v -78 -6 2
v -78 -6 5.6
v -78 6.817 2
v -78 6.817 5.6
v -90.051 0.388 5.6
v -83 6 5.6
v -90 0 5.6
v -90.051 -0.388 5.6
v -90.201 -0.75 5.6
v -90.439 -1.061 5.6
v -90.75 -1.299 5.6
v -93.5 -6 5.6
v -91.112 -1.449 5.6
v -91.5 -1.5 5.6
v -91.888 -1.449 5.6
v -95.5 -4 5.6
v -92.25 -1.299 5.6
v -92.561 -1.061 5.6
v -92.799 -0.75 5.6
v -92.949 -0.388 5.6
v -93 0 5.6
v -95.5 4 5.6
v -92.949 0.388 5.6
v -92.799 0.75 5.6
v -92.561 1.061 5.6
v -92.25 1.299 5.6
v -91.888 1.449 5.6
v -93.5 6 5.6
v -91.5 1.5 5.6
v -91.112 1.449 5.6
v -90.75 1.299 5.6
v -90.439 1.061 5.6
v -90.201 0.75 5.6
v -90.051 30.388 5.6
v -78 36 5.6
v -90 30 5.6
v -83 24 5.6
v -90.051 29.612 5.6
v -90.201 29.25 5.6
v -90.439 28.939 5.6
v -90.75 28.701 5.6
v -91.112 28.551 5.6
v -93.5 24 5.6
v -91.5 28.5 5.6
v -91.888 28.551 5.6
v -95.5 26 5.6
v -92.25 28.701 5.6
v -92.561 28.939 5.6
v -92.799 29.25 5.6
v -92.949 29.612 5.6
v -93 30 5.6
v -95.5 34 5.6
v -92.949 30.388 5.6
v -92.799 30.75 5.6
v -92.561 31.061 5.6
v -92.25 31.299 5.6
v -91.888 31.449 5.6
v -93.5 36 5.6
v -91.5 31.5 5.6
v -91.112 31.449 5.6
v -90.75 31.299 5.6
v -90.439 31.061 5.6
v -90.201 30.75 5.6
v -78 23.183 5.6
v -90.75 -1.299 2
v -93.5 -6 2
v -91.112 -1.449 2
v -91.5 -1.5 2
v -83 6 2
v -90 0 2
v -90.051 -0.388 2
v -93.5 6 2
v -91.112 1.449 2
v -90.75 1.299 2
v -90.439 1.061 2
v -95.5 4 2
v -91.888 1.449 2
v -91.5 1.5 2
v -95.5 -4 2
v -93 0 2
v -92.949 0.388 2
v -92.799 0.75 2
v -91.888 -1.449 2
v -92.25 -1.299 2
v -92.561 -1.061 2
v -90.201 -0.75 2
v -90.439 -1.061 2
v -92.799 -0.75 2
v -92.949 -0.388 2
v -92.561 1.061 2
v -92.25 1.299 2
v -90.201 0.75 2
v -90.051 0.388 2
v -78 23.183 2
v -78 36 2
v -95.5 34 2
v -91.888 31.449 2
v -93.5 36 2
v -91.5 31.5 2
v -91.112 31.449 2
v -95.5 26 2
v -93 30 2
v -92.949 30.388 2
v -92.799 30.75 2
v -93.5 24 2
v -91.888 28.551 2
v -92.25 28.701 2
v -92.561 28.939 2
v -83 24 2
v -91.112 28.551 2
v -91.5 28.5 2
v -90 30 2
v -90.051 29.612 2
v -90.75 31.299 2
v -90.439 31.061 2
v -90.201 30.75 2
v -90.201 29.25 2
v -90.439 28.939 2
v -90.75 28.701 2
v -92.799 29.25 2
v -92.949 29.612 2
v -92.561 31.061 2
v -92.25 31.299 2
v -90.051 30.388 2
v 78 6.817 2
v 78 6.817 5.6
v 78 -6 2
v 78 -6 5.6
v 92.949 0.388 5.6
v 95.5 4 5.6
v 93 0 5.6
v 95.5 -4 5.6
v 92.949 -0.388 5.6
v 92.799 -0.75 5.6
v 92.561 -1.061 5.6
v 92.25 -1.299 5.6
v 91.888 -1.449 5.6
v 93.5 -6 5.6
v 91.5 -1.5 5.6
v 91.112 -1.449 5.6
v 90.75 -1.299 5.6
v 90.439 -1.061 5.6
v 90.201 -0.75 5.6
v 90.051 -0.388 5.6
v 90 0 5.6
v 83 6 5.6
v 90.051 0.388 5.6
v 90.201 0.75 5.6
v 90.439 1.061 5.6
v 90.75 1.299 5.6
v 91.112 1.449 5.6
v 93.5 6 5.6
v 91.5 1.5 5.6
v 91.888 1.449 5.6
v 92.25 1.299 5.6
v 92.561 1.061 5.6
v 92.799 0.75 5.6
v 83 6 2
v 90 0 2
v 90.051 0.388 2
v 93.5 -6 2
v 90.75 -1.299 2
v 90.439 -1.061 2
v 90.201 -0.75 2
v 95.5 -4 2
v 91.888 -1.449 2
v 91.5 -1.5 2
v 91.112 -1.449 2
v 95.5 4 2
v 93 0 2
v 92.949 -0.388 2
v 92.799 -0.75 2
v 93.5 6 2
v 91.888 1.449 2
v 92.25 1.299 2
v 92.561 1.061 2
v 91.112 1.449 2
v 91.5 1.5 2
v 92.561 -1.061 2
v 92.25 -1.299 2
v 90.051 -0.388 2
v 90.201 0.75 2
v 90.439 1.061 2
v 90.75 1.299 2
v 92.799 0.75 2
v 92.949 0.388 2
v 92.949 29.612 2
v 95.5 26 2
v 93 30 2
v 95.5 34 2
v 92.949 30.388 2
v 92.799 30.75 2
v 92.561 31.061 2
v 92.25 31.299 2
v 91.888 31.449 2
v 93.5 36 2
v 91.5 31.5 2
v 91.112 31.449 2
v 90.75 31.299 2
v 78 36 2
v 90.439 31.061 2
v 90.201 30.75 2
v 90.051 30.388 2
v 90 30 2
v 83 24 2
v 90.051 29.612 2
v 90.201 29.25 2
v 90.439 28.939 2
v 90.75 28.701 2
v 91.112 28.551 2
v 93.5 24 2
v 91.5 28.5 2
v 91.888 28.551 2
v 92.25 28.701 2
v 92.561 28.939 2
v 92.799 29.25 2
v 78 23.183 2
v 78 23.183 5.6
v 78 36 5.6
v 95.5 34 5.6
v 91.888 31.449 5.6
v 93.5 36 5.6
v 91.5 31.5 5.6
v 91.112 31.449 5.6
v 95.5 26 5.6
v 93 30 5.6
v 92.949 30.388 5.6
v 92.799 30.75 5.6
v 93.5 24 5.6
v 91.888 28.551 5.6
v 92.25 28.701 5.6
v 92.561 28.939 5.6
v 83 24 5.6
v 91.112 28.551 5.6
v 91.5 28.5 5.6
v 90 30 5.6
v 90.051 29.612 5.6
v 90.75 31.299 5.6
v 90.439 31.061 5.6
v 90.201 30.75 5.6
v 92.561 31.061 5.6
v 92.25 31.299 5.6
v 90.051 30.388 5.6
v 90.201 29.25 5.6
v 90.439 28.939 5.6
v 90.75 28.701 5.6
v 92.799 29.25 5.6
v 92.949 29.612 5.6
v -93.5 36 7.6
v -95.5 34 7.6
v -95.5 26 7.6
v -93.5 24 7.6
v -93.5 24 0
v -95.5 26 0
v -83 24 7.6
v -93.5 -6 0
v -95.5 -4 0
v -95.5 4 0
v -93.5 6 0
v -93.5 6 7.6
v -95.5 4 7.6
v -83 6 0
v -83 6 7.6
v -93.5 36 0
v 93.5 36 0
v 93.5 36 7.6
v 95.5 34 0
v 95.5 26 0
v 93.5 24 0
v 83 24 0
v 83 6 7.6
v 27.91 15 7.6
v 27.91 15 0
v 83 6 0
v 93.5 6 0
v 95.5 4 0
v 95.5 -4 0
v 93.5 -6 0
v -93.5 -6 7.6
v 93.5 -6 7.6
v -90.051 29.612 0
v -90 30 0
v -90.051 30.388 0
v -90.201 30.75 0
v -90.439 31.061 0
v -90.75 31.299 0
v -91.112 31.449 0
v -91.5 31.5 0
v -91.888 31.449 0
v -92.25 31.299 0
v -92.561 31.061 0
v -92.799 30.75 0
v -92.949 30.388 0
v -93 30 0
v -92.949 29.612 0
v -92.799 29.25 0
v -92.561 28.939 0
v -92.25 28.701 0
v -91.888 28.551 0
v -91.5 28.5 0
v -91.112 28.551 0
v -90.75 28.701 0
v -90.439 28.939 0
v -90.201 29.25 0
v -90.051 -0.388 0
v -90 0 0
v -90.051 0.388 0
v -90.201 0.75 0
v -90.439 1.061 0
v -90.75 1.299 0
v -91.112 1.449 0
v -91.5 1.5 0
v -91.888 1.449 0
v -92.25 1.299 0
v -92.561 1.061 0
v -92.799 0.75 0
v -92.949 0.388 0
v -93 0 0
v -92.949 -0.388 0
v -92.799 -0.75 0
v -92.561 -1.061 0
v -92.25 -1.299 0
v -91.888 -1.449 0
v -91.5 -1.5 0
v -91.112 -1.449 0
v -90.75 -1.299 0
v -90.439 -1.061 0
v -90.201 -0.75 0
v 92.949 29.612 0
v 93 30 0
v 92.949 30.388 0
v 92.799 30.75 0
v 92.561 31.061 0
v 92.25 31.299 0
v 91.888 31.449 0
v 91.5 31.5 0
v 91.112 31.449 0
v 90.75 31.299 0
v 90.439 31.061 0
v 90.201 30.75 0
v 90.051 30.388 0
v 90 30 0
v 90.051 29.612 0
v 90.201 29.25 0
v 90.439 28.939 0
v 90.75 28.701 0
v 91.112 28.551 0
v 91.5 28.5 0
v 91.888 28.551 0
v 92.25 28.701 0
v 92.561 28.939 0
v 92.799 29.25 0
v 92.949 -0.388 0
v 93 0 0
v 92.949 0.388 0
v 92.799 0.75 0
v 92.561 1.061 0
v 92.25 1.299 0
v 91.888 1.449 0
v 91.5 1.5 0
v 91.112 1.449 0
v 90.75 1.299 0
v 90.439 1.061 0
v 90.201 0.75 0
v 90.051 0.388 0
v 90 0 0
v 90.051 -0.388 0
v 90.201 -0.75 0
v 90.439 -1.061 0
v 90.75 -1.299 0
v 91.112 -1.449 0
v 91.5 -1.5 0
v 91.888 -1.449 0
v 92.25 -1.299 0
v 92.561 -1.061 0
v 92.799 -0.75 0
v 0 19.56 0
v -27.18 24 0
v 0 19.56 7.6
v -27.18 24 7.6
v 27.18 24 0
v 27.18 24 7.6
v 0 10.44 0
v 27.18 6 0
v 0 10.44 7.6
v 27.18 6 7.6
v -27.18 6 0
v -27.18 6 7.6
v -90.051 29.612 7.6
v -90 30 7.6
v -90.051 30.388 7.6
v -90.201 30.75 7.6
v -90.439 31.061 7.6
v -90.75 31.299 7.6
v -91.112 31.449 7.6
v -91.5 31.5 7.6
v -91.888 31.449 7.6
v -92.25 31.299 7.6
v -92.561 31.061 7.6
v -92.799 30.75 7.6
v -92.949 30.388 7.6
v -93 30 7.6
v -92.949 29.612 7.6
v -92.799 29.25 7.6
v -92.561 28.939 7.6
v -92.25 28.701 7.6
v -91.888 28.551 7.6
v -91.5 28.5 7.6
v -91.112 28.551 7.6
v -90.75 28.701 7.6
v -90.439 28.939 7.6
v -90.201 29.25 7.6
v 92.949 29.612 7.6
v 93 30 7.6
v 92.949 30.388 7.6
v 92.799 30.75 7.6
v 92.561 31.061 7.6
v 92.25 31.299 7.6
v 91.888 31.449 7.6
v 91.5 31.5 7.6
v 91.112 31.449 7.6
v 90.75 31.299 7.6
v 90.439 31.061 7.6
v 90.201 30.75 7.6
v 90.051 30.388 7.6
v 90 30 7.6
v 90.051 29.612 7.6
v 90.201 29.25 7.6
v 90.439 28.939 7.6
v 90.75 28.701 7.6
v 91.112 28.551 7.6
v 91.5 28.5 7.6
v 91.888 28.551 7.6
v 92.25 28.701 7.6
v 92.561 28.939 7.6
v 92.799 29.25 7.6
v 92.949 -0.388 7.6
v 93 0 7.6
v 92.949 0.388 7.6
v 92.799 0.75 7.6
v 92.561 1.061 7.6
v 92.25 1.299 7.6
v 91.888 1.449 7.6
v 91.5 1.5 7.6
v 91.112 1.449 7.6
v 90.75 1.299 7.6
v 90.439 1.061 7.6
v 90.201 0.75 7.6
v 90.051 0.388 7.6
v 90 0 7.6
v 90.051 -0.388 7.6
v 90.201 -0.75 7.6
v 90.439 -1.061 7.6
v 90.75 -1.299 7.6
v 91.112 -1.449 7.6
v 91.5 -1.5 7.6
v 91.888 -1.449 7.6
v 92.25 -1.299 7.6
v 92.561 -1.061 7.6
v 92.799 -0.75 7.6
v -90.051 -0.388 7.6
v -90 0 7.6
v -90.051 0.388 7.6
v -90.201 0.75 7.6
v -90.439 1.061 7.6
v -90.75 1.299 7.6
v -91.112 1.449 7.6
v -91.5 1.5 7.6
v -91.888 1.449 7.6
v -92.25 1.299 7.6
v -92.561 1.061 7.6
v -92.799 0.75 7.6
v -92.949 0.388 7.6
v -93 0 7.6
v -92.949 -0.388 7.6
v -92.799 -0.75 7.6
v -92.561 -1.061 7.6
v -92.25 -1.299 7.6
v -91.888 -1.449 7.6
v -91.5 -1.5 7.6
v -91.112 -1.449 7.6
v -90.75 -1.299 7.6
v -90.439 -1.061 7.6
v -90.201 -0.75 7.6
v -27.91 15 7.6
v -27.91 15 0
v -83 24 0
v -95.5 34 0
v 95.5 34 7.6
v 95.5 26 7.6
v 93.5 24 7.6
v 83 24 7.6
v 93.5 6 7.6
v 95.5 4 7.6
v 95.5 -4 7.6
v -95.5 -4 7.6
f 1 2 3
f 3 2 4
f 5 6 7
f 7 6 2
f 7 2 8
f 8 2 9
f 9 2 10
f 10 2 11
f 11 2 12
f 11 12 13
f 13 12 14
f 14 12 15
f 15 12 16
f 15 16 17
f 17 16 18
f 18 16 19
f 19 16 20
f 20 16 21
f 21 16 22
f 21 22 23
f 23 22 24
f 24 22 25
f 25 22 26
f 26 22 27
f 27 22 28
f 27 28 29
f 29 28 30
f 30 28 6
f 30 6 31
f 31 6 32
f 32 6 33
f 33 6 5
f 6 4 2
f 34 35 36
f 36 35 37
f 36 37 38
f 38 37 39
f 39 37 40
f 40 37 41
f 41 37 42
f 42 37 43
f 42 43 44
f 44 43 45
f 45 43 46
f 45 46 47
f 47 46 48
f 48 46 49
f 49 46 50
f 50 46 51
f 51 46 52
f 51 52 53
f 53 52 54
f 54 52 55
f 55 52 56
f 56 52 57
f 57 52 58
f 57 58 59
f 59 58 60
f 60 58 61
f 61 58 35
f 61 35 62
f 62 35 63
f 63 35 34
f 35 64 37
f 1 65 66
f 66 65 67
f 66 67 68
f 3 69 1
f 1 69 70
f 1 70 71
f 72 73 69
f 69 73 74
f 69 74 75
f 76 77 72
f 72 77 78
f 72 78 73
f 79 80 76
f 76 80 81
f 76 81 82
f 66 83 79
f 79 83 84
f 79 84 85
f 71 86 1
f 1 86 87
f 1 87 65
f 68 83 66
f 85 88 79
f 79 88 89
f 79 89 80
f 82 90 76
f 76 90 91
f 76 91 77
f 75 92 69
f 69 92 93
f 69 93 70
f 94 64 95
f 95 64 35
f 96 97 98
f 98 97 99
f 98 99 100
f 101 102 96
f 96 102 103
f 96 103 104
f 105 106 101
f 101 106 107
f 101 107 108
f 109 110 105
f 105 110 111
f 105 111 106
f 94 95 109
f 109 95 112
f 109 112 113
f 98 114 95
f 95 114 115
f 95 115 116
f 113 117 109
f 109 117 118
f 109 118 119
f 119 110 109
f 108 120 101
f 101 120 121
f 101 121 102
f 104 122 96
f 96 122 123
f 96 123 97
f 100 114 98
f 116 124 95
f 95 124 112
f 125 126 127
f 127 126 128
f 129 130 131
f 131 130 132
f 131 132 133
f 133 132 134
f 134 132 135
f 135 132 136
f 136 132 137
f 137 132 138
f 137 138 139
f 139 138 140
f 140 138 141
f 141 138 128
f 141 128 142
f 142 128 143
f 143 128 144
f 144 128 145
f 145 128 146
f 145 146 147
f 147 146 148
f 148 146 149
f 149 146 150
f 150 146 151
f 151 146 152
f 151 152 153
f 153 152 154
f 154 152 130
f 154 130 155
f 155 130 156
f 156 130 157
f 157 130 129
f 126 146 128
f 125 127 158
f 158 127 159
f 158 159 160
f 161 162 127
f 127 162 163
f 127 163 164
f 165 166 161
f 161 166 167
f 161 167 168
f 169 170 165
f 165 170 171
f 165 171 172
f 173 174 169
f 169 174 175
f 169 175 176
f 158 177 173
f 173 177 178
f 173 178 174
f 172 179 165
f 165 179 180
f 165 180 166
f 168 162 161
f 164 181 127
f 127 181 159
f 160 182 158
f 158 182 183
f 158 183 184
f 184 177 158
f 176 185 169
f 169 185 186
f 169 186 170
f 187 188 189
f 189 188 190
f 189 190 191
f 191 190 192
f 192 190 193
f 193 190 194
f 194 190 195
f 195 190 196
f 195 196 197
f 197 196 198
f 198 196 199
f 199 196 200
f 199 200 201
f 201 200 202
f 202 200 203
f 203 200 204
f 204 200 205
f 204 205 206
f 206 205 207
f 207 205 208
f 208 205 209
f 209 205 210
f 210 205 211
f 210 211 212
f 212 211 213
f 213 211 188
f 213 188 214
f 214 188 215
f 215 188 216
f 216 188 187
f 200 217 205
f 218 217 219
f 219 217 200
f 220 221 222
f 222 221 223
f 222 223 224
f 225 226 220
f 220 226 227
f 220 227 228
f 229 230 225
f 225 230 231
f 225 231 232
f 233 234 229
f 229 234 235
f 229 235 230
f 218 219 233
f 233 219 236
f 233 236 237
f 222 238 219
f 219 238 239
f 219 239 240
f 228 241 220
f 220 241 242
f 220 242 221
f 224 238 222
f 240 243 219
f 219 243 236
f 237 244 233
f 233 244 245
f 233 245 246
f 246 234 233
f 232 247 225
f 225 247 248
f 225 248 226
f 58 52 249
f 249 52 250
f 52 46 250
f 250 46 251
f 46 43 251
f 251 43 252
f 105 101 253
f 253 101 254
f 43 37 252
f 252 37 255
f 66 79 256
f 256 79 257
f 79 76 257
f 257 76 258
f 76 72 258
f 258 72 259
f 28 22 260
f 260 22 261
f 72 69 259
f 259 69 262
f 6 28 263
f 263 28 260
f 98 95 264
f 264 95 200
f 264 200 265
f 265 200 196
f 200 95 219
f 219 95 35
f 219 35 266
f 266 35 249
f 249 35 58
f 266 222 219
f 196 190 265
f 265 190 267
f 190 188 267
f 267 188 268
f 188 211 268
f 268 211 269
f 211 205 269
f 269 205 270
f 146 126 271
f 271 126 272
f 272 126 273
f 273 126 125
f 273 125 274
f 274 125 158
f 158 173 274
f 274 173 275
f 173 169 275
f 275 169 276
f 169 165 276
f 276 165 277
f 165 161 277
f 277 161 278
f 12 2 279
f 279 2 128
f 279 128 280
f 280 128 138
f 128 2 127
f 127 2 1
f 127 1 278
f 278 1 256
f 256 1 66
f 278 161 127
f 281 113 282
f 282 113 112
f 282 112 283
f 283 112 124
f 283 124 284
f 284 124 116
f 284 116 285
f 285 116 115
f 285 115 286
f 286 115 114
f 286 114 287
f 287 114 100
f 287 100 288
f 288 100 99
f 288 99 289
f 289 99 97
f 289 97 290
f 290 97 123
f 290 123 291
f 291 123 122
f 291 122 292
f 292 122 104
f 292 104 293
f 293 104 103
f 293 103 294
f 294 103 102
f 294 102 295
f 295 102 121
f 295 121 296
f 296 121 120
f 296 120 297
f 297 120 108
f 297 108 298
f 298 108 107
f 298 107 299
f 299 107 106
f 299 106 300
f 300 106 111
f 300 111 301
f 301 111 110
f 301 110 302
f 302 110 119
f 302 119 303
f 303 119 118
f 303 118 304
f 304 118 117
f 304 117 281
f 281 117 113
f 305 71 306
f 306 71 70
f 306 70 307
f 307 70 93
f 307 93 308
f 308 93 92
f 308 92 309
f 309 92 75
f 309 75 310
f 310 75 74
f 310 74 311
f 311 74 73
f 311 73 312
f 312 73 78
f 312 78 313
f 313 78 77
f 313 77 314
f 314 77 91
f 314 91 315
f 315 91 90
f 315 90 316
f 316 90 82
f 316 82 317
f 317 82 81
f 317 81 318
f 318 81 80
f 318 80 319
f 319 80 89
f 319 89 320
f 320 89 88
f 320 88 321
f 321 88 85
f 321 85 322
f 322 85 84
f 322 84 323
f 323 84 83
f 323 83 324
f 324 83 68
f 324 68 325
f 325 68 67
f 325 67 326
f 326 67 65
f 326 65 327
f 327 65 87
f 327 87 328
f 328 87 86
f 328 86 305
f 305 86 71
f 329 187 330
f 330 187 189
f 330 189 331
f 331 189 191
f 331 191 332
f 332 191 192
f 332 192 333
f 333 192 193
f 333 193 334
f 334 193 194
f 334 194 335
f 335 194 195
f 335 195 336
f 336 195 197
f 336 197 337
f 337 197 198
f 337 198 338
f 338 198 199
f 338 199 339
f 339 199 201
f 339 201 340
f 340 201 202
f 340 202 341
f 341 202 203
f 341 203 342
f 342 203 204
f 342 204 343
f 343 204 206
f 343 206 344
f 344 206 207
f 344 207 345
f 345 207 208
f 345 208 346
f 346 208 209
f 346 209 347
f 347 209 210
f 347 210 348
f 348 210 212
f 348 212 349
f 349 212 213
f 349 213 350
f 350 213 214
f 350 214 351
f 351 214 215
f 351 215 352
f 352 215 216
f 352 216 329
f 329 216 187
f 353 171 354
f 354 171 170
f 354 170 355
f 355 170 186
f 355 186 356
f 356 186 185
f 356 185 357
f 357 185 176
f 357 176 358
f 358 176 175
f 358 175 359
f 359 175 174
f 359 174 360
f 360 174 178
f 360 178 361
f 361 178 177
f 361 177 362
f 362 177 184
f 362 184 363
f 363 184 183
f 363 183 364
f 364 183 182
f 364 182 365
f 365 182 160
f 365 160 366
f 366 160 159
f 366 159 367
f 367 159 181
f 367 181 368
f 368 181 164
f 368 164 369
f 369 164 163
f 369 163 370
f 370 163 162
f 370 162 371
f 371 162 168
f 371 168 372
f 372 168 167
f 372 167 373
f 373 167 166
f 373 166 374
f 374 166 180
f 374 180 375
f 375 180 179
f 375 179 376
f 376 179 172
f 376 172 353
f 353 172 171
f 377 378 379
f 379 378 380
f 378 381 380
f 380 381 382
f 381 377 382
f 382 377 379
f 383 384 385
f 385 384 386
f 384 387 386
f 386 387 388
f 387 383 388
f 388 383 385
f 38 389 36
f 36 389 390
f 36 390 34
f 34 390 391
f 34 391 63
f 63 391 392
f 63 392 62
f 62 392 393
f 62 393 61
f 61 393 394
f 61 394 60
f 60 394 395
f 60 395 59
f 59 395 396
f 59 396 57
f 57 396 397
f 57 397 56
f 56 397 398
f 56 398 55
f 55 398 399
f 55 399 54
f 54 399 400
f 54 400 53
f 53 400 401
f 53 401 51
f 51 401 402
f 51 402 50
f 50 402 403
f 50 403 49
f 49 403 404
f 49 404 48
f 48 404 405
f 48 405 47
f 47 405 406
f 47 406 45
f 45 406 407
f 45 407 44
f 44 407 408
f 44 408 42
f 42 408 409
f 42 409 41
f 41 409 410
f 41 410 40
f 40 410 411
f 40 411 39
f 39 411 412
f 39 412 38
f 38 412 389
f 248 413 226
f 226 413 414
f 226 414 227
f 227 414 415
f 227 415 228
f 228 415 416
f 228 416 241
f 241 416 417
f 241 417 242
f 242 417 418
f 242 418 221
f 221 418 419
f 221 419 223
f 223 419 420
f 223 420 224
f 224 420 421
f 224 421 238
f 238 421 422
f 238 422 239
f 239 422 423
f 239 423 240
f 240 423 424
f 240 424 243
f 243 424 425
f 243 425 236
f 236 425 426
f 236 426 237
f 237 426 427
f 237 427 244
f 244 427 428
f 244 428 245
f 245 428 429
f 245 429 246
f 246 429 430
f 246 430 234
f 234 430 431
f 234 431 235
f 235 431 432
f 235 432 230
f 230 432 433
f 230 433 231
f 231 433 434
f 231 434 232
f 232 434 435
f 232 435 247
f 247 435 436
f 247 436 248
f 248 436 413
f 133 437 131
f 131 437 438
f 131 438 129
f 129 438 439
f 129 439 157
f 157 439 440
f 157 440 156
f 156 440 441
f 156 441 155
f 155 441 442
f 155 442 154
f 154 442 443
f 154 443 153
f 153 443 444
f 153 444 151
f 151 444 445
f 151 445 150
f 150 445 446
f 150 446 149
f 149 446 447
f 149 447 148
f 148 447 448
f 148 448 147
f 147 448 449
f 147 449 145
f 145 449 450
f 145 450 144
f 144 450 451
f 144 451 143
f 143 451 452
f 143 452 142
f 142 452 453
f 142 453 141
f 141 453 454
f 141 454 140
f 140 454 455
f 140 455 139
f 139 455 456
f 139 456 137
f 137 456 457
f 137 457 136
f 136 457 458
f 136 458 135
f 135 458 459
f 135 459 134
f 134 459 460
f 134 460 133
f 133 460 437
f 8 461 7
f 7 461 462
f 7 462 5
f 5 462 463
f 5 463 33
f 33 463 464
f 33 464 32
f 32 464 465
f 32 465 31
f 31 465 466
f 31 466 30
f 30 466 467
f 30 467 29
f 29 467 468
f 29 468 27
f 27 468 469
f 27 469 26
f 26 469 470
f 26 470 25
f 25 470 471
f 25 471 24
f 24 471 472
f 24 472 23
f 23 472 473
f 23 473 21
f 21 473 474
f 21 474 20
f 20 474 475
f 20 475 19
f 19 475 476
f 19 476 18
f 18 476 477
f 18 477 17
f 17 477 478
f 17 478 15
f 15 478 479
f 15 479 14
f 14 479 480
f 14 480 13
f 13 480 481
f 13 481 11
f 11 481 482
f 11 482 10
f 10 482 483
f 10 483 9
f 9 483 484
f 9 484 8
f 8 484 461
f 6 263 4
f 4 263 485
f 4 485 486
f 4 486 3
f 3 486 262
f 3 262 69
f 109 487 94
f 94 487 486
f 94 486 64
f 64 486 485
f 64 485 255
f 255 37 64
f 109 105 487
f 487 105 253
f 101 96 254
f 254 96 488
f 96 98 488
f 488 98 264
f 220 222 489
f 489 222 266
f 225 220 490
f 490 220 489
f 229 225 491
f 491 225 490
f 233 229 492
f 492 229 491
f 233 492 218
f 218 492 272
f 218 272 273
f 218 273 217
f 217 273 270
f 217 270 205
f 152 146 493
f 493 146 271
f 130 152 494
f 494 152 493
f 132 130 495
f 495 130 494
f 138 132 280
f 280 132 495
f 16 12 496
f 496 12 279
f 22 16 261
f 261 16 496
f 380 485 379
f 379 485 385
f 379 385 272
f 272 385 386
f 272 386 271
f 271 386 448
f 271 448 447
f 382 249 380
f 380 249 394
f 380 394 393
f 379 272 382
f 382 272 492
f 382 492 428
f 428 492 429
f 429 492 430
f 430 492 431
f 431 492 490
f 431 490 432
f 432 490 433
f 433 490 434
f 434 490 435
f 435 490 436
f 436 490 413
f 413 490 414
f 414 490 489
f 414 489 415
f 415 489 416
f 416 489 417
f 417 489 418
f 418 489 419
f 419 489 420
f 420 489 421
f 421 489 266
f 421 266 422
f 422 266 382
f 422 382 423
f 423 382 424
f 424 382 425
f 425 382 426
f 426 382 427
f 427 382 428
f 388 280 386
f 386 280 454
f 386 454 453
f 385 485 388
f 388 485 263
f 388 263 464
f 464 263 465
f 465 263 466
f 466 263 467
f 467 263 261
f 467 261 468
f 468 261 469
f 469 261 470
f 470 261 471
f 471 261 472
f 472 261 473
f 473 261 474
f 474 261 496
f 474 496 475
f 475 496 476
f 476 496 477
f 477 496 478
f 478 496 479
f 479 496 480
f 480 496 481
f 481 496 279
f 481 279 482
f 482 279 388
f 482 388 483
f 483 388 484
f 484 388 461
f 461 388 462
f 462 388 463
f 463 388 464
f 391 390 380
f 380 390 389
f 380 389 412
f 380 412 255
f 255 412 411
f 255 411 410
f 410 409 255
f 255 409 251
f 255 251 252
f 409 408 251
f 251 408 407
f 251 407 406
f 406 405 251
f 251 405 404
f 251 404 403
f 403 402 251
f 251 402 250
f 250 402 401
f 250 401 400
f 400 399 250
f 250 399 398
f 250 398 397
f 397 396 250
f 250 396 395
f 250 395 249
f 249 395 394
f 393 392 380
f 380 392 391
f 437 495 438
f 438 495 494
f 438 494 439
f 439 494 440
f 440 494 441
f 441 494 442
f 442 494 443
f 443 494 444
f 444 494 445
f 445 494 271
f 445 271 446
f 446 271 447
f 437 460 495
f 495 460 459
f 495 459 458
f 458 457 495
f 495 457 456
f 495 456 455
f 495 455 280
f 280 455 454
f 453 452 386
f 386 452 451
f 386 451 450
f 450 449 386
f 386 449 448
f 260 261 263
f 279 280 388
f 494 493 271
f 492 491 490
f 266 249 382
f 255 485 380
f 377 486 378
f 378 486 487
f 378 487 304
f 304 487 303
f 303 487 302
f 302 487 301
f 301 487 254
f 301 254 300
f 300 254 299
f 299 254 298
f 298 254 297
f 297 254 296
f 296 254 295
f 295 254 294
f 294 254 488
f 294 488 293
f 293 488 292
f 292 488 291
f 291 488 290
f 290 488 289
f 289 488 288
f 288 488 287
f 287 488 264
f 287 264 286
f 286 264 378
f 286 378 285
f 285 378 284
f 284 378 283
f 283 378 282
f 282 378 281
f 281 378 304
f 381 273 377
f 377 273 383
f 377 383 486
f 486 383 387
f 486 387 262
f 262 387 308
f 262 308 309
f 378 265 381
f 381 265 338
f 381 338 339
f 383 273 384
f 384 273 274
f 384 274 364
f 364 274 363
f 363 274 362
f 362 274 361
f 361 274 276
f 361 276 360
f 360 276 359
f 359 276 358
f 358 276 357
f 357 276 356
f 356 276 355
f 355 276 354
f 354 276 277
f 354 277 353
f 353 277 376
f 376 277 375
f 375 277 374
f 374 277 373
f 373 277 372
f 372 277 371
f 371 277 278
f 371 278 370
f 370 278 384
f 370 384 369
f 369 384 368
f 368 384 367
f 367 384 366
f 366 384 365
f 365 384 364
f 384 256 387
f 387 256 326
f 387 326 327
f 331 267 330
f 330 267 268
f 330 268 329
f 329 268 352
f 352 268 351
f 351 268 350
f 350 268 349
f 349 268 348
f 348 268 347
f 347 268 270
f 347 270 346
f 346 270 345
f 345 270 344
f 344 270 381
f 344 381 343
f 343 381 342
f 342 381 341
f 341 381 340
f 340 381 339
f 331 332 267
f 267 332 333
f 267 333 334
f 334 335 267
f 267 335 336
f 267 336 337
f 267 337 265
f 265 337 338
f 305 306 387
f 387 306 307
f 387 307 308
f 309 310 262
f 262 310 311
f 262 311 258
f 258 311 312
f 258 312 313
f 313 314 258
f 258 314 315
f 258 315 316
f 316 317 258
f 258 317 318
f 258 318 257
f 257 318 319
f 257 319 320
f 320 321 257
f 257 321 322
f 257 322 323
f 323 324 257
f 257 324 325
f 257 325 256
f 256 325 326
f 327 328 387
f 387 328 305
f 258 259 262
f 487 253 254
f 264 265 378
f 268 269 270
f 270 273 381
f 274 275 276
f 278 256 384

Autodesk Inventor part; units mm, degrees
ref_plane "YZ Plane" through (0, 0, 0) normal (1, 0, 0) x (0, 1, 0)
ref_plane "XZ Plane" through (0, 0, 0) normal (0, 1, 0) x (-1, 0, 0)
ref_plane "XY Plane" through (0, 0, 0) normal (0, 0, 1) x (1, 0, 0)
sketch "Sketch1" plane through (0, 0, 0) normal (0, 0, 1) x (1, 0, 0)
  circle A0 centre (-91.5, 0) radius 1.5
  circle A1 centre (91.5, 0) radius 1.5
  line L0 (0, -71.4835) -> (0, 99.0835) construction
  line L1 (95.5, 4) -> (95.5, -4)
  line L2 (93.5, -6) -> (-93.5, -6)
  line L3 (-95.5, -4) -> (-95.5, 4)
  line L4 (-207.6267, 0) -> (207.6267, 0) construction
  line L5 (-93.5, 6) -> (-95.5, 4)
  line L6 (-93.5, -6) -> (-95.5, -4)
  line L7 (95.5, -4) -> (93.5, -6)
  line L8 (93.5, 6) -> (95.5, 4)
  line L9 (-148.3048, 15) -> (148.3048, 15) construction
  circle A2 centre (-91.5, 30) radius 1.5
  circle A3 centre (91.5, 30) radius 1.5
  line L10 (0, 101.4835) -> (0, -69.0835)
  line L11 (95.5, 26) -> (95.5, 34)
  line L12 (93.5, 36) -> (-93.5, 36)
  line L13 (-95.5, 34) -> (-95.5, 26)
  line L14 (-93.5, 24) -> (-95.5, 26)
  line L15 (-93.5, 36) -> (-95.5, 34)
  line L16 (95.5, 34) -> (93.5, 36)
  line L17 (93.5, 24) -> (95.5, 26)
  line L18 (87.5822, -3.9178) -> (95.4178, 3.9178) construction
  line L19 (-83, 6) -> (-27.9101, 15)
  line L20 (0, 19.5597) -> (27.1798, 24)
  line L21 (83, 24) -> (27.9101, 15)
  line L22 (0, 10.4403) -> (-27.1798, 6)
  line L23 (83, 6) -> (27.9101, 15)
  line L24 (0, 19.5597) -> (-27.1798, 24)
  line L25 (-83, 24) -> (-27.9101, 15)
  line L26 (0, 10.4403) -> (27.1798, 6)
  line L27 (-93.5, 24) -> (-83, 24)
  line L28 (-93.5, 6) -> (-83, 6)
  line L29 (-27.1798, 6) -> (27.1798, 6)
  line L30 (83, 6) -> (93.5, 6)
  line L31 (-27.1798, 24) -> (27.1798, 24)
  line L32 (83, 24) -> (93.5, 24)
  point P0 (0, 0)
  point P1 (-95.5, 6)
  point P2 (95.5, -6)
  point P3 (95.5, 6)
  point P4 (-95.5, -6)
  point P5 (0, 30)
  point P6 (-95.5, 24)
  point P7 (95.5, 36)
  point P8 (95.5, 24)
  point P9 (-95.5, 36)
  dimension "d0" = 3
  dimension "d1" = 3
  dimension "d2" = 183
  dimension "d4" = 4
  dimension "d10" = 2
  dimension "d11" = 2
  dimension "d12" = 2
  dimension "d13" = 2
  dimension "d14" = 2
  dimension "d15" = 2
  dimension "d16" = 2
  dimension "d17" = 2
  dimension "d18" = 30
  dimension "d20" = 12
  dimension "d21" = 12
  dimension "d22" = 12
  dimension "d23" = 10.5
  dimension "d24" = 10.5
  dimension "d25" = 9
  dimension "d26" = 9
  dimension "d27" = 9
  dimension "d28" = 9
  dimension "d29" = 12
extrude "Extrusion2" add sketch "Sketch1" along normal blind 7.6 contours L1 L7 L2 L10 L29 L26 L20 L31 L12 L16 L11 L17 L32 L21 L23 L30 L8 | L2 L6 L3 L5 L28 L19 L25 L27 L14 L13 L15 L12 L10 L31 L24 L22 L29
sketch "Sketch2" plane through (-93.5, 36, 0) normal (0, 1, 0) x (1, 0, 0)
  line L0 (187, 0) -> (0, 0) construction
  line L1 (0, 0) -> (0, -7.6) construction
  line L2 (187, -7.6) -> (0, -7.6) construction
  line L3 (187, 0) -> (187, -7.6) construction
  line L4 (0, 0) -> (0, -7.6) construction
  line L5 (0, -3.8) -> (187, -3.8) construction
  line L6 (-2, -2) -> (15.5, -2)
  line L7 (15.5, -2) -> (15.5, -5.6)
  line L8 (15.5, -5.6) -> (-2, -5.6)
  line L9 (-2, -5.6) -> (-2, -2)
  line L10 (-2, 0) -> (-2, -7.6) construction
  line L11 (93.5, 0) -> (93.5, -7.6) construction
  line L12 (0, -7.6) -> (187, -7.6) construction
  line L13 (187, 0) -> (187, -7.6) construction
  line L14 (187, 0) -> (187, -7.6) construction
  line L15 (187, -3.8) -> (0, -3.8) construction
  line L16 (189, -2) -> (171.5, -2)
  line L17 (171.5, -2) -> (171.5, -5.6)
  line L18 (171.5, -5.6) -> (189, -5.6)
  line L19 (189, -5.6) -> (189, -2)
  line L20 (189, 0) -> (189, -7.6) construction
  dimension "d32" = 3.6
  dimension "d33" = 17.5
extrude "Extrusion3" cut sketch "Sketch2" against normal through all
equation "\"d11\" = d10"
equation "\"d13\" = d12"
equation "\"d14\" = d12"
equation "\"d15\" = d14"
equation "\"d16\" = d12"
equation "\"d17\" = d16"
properties part number "stabilizer"
